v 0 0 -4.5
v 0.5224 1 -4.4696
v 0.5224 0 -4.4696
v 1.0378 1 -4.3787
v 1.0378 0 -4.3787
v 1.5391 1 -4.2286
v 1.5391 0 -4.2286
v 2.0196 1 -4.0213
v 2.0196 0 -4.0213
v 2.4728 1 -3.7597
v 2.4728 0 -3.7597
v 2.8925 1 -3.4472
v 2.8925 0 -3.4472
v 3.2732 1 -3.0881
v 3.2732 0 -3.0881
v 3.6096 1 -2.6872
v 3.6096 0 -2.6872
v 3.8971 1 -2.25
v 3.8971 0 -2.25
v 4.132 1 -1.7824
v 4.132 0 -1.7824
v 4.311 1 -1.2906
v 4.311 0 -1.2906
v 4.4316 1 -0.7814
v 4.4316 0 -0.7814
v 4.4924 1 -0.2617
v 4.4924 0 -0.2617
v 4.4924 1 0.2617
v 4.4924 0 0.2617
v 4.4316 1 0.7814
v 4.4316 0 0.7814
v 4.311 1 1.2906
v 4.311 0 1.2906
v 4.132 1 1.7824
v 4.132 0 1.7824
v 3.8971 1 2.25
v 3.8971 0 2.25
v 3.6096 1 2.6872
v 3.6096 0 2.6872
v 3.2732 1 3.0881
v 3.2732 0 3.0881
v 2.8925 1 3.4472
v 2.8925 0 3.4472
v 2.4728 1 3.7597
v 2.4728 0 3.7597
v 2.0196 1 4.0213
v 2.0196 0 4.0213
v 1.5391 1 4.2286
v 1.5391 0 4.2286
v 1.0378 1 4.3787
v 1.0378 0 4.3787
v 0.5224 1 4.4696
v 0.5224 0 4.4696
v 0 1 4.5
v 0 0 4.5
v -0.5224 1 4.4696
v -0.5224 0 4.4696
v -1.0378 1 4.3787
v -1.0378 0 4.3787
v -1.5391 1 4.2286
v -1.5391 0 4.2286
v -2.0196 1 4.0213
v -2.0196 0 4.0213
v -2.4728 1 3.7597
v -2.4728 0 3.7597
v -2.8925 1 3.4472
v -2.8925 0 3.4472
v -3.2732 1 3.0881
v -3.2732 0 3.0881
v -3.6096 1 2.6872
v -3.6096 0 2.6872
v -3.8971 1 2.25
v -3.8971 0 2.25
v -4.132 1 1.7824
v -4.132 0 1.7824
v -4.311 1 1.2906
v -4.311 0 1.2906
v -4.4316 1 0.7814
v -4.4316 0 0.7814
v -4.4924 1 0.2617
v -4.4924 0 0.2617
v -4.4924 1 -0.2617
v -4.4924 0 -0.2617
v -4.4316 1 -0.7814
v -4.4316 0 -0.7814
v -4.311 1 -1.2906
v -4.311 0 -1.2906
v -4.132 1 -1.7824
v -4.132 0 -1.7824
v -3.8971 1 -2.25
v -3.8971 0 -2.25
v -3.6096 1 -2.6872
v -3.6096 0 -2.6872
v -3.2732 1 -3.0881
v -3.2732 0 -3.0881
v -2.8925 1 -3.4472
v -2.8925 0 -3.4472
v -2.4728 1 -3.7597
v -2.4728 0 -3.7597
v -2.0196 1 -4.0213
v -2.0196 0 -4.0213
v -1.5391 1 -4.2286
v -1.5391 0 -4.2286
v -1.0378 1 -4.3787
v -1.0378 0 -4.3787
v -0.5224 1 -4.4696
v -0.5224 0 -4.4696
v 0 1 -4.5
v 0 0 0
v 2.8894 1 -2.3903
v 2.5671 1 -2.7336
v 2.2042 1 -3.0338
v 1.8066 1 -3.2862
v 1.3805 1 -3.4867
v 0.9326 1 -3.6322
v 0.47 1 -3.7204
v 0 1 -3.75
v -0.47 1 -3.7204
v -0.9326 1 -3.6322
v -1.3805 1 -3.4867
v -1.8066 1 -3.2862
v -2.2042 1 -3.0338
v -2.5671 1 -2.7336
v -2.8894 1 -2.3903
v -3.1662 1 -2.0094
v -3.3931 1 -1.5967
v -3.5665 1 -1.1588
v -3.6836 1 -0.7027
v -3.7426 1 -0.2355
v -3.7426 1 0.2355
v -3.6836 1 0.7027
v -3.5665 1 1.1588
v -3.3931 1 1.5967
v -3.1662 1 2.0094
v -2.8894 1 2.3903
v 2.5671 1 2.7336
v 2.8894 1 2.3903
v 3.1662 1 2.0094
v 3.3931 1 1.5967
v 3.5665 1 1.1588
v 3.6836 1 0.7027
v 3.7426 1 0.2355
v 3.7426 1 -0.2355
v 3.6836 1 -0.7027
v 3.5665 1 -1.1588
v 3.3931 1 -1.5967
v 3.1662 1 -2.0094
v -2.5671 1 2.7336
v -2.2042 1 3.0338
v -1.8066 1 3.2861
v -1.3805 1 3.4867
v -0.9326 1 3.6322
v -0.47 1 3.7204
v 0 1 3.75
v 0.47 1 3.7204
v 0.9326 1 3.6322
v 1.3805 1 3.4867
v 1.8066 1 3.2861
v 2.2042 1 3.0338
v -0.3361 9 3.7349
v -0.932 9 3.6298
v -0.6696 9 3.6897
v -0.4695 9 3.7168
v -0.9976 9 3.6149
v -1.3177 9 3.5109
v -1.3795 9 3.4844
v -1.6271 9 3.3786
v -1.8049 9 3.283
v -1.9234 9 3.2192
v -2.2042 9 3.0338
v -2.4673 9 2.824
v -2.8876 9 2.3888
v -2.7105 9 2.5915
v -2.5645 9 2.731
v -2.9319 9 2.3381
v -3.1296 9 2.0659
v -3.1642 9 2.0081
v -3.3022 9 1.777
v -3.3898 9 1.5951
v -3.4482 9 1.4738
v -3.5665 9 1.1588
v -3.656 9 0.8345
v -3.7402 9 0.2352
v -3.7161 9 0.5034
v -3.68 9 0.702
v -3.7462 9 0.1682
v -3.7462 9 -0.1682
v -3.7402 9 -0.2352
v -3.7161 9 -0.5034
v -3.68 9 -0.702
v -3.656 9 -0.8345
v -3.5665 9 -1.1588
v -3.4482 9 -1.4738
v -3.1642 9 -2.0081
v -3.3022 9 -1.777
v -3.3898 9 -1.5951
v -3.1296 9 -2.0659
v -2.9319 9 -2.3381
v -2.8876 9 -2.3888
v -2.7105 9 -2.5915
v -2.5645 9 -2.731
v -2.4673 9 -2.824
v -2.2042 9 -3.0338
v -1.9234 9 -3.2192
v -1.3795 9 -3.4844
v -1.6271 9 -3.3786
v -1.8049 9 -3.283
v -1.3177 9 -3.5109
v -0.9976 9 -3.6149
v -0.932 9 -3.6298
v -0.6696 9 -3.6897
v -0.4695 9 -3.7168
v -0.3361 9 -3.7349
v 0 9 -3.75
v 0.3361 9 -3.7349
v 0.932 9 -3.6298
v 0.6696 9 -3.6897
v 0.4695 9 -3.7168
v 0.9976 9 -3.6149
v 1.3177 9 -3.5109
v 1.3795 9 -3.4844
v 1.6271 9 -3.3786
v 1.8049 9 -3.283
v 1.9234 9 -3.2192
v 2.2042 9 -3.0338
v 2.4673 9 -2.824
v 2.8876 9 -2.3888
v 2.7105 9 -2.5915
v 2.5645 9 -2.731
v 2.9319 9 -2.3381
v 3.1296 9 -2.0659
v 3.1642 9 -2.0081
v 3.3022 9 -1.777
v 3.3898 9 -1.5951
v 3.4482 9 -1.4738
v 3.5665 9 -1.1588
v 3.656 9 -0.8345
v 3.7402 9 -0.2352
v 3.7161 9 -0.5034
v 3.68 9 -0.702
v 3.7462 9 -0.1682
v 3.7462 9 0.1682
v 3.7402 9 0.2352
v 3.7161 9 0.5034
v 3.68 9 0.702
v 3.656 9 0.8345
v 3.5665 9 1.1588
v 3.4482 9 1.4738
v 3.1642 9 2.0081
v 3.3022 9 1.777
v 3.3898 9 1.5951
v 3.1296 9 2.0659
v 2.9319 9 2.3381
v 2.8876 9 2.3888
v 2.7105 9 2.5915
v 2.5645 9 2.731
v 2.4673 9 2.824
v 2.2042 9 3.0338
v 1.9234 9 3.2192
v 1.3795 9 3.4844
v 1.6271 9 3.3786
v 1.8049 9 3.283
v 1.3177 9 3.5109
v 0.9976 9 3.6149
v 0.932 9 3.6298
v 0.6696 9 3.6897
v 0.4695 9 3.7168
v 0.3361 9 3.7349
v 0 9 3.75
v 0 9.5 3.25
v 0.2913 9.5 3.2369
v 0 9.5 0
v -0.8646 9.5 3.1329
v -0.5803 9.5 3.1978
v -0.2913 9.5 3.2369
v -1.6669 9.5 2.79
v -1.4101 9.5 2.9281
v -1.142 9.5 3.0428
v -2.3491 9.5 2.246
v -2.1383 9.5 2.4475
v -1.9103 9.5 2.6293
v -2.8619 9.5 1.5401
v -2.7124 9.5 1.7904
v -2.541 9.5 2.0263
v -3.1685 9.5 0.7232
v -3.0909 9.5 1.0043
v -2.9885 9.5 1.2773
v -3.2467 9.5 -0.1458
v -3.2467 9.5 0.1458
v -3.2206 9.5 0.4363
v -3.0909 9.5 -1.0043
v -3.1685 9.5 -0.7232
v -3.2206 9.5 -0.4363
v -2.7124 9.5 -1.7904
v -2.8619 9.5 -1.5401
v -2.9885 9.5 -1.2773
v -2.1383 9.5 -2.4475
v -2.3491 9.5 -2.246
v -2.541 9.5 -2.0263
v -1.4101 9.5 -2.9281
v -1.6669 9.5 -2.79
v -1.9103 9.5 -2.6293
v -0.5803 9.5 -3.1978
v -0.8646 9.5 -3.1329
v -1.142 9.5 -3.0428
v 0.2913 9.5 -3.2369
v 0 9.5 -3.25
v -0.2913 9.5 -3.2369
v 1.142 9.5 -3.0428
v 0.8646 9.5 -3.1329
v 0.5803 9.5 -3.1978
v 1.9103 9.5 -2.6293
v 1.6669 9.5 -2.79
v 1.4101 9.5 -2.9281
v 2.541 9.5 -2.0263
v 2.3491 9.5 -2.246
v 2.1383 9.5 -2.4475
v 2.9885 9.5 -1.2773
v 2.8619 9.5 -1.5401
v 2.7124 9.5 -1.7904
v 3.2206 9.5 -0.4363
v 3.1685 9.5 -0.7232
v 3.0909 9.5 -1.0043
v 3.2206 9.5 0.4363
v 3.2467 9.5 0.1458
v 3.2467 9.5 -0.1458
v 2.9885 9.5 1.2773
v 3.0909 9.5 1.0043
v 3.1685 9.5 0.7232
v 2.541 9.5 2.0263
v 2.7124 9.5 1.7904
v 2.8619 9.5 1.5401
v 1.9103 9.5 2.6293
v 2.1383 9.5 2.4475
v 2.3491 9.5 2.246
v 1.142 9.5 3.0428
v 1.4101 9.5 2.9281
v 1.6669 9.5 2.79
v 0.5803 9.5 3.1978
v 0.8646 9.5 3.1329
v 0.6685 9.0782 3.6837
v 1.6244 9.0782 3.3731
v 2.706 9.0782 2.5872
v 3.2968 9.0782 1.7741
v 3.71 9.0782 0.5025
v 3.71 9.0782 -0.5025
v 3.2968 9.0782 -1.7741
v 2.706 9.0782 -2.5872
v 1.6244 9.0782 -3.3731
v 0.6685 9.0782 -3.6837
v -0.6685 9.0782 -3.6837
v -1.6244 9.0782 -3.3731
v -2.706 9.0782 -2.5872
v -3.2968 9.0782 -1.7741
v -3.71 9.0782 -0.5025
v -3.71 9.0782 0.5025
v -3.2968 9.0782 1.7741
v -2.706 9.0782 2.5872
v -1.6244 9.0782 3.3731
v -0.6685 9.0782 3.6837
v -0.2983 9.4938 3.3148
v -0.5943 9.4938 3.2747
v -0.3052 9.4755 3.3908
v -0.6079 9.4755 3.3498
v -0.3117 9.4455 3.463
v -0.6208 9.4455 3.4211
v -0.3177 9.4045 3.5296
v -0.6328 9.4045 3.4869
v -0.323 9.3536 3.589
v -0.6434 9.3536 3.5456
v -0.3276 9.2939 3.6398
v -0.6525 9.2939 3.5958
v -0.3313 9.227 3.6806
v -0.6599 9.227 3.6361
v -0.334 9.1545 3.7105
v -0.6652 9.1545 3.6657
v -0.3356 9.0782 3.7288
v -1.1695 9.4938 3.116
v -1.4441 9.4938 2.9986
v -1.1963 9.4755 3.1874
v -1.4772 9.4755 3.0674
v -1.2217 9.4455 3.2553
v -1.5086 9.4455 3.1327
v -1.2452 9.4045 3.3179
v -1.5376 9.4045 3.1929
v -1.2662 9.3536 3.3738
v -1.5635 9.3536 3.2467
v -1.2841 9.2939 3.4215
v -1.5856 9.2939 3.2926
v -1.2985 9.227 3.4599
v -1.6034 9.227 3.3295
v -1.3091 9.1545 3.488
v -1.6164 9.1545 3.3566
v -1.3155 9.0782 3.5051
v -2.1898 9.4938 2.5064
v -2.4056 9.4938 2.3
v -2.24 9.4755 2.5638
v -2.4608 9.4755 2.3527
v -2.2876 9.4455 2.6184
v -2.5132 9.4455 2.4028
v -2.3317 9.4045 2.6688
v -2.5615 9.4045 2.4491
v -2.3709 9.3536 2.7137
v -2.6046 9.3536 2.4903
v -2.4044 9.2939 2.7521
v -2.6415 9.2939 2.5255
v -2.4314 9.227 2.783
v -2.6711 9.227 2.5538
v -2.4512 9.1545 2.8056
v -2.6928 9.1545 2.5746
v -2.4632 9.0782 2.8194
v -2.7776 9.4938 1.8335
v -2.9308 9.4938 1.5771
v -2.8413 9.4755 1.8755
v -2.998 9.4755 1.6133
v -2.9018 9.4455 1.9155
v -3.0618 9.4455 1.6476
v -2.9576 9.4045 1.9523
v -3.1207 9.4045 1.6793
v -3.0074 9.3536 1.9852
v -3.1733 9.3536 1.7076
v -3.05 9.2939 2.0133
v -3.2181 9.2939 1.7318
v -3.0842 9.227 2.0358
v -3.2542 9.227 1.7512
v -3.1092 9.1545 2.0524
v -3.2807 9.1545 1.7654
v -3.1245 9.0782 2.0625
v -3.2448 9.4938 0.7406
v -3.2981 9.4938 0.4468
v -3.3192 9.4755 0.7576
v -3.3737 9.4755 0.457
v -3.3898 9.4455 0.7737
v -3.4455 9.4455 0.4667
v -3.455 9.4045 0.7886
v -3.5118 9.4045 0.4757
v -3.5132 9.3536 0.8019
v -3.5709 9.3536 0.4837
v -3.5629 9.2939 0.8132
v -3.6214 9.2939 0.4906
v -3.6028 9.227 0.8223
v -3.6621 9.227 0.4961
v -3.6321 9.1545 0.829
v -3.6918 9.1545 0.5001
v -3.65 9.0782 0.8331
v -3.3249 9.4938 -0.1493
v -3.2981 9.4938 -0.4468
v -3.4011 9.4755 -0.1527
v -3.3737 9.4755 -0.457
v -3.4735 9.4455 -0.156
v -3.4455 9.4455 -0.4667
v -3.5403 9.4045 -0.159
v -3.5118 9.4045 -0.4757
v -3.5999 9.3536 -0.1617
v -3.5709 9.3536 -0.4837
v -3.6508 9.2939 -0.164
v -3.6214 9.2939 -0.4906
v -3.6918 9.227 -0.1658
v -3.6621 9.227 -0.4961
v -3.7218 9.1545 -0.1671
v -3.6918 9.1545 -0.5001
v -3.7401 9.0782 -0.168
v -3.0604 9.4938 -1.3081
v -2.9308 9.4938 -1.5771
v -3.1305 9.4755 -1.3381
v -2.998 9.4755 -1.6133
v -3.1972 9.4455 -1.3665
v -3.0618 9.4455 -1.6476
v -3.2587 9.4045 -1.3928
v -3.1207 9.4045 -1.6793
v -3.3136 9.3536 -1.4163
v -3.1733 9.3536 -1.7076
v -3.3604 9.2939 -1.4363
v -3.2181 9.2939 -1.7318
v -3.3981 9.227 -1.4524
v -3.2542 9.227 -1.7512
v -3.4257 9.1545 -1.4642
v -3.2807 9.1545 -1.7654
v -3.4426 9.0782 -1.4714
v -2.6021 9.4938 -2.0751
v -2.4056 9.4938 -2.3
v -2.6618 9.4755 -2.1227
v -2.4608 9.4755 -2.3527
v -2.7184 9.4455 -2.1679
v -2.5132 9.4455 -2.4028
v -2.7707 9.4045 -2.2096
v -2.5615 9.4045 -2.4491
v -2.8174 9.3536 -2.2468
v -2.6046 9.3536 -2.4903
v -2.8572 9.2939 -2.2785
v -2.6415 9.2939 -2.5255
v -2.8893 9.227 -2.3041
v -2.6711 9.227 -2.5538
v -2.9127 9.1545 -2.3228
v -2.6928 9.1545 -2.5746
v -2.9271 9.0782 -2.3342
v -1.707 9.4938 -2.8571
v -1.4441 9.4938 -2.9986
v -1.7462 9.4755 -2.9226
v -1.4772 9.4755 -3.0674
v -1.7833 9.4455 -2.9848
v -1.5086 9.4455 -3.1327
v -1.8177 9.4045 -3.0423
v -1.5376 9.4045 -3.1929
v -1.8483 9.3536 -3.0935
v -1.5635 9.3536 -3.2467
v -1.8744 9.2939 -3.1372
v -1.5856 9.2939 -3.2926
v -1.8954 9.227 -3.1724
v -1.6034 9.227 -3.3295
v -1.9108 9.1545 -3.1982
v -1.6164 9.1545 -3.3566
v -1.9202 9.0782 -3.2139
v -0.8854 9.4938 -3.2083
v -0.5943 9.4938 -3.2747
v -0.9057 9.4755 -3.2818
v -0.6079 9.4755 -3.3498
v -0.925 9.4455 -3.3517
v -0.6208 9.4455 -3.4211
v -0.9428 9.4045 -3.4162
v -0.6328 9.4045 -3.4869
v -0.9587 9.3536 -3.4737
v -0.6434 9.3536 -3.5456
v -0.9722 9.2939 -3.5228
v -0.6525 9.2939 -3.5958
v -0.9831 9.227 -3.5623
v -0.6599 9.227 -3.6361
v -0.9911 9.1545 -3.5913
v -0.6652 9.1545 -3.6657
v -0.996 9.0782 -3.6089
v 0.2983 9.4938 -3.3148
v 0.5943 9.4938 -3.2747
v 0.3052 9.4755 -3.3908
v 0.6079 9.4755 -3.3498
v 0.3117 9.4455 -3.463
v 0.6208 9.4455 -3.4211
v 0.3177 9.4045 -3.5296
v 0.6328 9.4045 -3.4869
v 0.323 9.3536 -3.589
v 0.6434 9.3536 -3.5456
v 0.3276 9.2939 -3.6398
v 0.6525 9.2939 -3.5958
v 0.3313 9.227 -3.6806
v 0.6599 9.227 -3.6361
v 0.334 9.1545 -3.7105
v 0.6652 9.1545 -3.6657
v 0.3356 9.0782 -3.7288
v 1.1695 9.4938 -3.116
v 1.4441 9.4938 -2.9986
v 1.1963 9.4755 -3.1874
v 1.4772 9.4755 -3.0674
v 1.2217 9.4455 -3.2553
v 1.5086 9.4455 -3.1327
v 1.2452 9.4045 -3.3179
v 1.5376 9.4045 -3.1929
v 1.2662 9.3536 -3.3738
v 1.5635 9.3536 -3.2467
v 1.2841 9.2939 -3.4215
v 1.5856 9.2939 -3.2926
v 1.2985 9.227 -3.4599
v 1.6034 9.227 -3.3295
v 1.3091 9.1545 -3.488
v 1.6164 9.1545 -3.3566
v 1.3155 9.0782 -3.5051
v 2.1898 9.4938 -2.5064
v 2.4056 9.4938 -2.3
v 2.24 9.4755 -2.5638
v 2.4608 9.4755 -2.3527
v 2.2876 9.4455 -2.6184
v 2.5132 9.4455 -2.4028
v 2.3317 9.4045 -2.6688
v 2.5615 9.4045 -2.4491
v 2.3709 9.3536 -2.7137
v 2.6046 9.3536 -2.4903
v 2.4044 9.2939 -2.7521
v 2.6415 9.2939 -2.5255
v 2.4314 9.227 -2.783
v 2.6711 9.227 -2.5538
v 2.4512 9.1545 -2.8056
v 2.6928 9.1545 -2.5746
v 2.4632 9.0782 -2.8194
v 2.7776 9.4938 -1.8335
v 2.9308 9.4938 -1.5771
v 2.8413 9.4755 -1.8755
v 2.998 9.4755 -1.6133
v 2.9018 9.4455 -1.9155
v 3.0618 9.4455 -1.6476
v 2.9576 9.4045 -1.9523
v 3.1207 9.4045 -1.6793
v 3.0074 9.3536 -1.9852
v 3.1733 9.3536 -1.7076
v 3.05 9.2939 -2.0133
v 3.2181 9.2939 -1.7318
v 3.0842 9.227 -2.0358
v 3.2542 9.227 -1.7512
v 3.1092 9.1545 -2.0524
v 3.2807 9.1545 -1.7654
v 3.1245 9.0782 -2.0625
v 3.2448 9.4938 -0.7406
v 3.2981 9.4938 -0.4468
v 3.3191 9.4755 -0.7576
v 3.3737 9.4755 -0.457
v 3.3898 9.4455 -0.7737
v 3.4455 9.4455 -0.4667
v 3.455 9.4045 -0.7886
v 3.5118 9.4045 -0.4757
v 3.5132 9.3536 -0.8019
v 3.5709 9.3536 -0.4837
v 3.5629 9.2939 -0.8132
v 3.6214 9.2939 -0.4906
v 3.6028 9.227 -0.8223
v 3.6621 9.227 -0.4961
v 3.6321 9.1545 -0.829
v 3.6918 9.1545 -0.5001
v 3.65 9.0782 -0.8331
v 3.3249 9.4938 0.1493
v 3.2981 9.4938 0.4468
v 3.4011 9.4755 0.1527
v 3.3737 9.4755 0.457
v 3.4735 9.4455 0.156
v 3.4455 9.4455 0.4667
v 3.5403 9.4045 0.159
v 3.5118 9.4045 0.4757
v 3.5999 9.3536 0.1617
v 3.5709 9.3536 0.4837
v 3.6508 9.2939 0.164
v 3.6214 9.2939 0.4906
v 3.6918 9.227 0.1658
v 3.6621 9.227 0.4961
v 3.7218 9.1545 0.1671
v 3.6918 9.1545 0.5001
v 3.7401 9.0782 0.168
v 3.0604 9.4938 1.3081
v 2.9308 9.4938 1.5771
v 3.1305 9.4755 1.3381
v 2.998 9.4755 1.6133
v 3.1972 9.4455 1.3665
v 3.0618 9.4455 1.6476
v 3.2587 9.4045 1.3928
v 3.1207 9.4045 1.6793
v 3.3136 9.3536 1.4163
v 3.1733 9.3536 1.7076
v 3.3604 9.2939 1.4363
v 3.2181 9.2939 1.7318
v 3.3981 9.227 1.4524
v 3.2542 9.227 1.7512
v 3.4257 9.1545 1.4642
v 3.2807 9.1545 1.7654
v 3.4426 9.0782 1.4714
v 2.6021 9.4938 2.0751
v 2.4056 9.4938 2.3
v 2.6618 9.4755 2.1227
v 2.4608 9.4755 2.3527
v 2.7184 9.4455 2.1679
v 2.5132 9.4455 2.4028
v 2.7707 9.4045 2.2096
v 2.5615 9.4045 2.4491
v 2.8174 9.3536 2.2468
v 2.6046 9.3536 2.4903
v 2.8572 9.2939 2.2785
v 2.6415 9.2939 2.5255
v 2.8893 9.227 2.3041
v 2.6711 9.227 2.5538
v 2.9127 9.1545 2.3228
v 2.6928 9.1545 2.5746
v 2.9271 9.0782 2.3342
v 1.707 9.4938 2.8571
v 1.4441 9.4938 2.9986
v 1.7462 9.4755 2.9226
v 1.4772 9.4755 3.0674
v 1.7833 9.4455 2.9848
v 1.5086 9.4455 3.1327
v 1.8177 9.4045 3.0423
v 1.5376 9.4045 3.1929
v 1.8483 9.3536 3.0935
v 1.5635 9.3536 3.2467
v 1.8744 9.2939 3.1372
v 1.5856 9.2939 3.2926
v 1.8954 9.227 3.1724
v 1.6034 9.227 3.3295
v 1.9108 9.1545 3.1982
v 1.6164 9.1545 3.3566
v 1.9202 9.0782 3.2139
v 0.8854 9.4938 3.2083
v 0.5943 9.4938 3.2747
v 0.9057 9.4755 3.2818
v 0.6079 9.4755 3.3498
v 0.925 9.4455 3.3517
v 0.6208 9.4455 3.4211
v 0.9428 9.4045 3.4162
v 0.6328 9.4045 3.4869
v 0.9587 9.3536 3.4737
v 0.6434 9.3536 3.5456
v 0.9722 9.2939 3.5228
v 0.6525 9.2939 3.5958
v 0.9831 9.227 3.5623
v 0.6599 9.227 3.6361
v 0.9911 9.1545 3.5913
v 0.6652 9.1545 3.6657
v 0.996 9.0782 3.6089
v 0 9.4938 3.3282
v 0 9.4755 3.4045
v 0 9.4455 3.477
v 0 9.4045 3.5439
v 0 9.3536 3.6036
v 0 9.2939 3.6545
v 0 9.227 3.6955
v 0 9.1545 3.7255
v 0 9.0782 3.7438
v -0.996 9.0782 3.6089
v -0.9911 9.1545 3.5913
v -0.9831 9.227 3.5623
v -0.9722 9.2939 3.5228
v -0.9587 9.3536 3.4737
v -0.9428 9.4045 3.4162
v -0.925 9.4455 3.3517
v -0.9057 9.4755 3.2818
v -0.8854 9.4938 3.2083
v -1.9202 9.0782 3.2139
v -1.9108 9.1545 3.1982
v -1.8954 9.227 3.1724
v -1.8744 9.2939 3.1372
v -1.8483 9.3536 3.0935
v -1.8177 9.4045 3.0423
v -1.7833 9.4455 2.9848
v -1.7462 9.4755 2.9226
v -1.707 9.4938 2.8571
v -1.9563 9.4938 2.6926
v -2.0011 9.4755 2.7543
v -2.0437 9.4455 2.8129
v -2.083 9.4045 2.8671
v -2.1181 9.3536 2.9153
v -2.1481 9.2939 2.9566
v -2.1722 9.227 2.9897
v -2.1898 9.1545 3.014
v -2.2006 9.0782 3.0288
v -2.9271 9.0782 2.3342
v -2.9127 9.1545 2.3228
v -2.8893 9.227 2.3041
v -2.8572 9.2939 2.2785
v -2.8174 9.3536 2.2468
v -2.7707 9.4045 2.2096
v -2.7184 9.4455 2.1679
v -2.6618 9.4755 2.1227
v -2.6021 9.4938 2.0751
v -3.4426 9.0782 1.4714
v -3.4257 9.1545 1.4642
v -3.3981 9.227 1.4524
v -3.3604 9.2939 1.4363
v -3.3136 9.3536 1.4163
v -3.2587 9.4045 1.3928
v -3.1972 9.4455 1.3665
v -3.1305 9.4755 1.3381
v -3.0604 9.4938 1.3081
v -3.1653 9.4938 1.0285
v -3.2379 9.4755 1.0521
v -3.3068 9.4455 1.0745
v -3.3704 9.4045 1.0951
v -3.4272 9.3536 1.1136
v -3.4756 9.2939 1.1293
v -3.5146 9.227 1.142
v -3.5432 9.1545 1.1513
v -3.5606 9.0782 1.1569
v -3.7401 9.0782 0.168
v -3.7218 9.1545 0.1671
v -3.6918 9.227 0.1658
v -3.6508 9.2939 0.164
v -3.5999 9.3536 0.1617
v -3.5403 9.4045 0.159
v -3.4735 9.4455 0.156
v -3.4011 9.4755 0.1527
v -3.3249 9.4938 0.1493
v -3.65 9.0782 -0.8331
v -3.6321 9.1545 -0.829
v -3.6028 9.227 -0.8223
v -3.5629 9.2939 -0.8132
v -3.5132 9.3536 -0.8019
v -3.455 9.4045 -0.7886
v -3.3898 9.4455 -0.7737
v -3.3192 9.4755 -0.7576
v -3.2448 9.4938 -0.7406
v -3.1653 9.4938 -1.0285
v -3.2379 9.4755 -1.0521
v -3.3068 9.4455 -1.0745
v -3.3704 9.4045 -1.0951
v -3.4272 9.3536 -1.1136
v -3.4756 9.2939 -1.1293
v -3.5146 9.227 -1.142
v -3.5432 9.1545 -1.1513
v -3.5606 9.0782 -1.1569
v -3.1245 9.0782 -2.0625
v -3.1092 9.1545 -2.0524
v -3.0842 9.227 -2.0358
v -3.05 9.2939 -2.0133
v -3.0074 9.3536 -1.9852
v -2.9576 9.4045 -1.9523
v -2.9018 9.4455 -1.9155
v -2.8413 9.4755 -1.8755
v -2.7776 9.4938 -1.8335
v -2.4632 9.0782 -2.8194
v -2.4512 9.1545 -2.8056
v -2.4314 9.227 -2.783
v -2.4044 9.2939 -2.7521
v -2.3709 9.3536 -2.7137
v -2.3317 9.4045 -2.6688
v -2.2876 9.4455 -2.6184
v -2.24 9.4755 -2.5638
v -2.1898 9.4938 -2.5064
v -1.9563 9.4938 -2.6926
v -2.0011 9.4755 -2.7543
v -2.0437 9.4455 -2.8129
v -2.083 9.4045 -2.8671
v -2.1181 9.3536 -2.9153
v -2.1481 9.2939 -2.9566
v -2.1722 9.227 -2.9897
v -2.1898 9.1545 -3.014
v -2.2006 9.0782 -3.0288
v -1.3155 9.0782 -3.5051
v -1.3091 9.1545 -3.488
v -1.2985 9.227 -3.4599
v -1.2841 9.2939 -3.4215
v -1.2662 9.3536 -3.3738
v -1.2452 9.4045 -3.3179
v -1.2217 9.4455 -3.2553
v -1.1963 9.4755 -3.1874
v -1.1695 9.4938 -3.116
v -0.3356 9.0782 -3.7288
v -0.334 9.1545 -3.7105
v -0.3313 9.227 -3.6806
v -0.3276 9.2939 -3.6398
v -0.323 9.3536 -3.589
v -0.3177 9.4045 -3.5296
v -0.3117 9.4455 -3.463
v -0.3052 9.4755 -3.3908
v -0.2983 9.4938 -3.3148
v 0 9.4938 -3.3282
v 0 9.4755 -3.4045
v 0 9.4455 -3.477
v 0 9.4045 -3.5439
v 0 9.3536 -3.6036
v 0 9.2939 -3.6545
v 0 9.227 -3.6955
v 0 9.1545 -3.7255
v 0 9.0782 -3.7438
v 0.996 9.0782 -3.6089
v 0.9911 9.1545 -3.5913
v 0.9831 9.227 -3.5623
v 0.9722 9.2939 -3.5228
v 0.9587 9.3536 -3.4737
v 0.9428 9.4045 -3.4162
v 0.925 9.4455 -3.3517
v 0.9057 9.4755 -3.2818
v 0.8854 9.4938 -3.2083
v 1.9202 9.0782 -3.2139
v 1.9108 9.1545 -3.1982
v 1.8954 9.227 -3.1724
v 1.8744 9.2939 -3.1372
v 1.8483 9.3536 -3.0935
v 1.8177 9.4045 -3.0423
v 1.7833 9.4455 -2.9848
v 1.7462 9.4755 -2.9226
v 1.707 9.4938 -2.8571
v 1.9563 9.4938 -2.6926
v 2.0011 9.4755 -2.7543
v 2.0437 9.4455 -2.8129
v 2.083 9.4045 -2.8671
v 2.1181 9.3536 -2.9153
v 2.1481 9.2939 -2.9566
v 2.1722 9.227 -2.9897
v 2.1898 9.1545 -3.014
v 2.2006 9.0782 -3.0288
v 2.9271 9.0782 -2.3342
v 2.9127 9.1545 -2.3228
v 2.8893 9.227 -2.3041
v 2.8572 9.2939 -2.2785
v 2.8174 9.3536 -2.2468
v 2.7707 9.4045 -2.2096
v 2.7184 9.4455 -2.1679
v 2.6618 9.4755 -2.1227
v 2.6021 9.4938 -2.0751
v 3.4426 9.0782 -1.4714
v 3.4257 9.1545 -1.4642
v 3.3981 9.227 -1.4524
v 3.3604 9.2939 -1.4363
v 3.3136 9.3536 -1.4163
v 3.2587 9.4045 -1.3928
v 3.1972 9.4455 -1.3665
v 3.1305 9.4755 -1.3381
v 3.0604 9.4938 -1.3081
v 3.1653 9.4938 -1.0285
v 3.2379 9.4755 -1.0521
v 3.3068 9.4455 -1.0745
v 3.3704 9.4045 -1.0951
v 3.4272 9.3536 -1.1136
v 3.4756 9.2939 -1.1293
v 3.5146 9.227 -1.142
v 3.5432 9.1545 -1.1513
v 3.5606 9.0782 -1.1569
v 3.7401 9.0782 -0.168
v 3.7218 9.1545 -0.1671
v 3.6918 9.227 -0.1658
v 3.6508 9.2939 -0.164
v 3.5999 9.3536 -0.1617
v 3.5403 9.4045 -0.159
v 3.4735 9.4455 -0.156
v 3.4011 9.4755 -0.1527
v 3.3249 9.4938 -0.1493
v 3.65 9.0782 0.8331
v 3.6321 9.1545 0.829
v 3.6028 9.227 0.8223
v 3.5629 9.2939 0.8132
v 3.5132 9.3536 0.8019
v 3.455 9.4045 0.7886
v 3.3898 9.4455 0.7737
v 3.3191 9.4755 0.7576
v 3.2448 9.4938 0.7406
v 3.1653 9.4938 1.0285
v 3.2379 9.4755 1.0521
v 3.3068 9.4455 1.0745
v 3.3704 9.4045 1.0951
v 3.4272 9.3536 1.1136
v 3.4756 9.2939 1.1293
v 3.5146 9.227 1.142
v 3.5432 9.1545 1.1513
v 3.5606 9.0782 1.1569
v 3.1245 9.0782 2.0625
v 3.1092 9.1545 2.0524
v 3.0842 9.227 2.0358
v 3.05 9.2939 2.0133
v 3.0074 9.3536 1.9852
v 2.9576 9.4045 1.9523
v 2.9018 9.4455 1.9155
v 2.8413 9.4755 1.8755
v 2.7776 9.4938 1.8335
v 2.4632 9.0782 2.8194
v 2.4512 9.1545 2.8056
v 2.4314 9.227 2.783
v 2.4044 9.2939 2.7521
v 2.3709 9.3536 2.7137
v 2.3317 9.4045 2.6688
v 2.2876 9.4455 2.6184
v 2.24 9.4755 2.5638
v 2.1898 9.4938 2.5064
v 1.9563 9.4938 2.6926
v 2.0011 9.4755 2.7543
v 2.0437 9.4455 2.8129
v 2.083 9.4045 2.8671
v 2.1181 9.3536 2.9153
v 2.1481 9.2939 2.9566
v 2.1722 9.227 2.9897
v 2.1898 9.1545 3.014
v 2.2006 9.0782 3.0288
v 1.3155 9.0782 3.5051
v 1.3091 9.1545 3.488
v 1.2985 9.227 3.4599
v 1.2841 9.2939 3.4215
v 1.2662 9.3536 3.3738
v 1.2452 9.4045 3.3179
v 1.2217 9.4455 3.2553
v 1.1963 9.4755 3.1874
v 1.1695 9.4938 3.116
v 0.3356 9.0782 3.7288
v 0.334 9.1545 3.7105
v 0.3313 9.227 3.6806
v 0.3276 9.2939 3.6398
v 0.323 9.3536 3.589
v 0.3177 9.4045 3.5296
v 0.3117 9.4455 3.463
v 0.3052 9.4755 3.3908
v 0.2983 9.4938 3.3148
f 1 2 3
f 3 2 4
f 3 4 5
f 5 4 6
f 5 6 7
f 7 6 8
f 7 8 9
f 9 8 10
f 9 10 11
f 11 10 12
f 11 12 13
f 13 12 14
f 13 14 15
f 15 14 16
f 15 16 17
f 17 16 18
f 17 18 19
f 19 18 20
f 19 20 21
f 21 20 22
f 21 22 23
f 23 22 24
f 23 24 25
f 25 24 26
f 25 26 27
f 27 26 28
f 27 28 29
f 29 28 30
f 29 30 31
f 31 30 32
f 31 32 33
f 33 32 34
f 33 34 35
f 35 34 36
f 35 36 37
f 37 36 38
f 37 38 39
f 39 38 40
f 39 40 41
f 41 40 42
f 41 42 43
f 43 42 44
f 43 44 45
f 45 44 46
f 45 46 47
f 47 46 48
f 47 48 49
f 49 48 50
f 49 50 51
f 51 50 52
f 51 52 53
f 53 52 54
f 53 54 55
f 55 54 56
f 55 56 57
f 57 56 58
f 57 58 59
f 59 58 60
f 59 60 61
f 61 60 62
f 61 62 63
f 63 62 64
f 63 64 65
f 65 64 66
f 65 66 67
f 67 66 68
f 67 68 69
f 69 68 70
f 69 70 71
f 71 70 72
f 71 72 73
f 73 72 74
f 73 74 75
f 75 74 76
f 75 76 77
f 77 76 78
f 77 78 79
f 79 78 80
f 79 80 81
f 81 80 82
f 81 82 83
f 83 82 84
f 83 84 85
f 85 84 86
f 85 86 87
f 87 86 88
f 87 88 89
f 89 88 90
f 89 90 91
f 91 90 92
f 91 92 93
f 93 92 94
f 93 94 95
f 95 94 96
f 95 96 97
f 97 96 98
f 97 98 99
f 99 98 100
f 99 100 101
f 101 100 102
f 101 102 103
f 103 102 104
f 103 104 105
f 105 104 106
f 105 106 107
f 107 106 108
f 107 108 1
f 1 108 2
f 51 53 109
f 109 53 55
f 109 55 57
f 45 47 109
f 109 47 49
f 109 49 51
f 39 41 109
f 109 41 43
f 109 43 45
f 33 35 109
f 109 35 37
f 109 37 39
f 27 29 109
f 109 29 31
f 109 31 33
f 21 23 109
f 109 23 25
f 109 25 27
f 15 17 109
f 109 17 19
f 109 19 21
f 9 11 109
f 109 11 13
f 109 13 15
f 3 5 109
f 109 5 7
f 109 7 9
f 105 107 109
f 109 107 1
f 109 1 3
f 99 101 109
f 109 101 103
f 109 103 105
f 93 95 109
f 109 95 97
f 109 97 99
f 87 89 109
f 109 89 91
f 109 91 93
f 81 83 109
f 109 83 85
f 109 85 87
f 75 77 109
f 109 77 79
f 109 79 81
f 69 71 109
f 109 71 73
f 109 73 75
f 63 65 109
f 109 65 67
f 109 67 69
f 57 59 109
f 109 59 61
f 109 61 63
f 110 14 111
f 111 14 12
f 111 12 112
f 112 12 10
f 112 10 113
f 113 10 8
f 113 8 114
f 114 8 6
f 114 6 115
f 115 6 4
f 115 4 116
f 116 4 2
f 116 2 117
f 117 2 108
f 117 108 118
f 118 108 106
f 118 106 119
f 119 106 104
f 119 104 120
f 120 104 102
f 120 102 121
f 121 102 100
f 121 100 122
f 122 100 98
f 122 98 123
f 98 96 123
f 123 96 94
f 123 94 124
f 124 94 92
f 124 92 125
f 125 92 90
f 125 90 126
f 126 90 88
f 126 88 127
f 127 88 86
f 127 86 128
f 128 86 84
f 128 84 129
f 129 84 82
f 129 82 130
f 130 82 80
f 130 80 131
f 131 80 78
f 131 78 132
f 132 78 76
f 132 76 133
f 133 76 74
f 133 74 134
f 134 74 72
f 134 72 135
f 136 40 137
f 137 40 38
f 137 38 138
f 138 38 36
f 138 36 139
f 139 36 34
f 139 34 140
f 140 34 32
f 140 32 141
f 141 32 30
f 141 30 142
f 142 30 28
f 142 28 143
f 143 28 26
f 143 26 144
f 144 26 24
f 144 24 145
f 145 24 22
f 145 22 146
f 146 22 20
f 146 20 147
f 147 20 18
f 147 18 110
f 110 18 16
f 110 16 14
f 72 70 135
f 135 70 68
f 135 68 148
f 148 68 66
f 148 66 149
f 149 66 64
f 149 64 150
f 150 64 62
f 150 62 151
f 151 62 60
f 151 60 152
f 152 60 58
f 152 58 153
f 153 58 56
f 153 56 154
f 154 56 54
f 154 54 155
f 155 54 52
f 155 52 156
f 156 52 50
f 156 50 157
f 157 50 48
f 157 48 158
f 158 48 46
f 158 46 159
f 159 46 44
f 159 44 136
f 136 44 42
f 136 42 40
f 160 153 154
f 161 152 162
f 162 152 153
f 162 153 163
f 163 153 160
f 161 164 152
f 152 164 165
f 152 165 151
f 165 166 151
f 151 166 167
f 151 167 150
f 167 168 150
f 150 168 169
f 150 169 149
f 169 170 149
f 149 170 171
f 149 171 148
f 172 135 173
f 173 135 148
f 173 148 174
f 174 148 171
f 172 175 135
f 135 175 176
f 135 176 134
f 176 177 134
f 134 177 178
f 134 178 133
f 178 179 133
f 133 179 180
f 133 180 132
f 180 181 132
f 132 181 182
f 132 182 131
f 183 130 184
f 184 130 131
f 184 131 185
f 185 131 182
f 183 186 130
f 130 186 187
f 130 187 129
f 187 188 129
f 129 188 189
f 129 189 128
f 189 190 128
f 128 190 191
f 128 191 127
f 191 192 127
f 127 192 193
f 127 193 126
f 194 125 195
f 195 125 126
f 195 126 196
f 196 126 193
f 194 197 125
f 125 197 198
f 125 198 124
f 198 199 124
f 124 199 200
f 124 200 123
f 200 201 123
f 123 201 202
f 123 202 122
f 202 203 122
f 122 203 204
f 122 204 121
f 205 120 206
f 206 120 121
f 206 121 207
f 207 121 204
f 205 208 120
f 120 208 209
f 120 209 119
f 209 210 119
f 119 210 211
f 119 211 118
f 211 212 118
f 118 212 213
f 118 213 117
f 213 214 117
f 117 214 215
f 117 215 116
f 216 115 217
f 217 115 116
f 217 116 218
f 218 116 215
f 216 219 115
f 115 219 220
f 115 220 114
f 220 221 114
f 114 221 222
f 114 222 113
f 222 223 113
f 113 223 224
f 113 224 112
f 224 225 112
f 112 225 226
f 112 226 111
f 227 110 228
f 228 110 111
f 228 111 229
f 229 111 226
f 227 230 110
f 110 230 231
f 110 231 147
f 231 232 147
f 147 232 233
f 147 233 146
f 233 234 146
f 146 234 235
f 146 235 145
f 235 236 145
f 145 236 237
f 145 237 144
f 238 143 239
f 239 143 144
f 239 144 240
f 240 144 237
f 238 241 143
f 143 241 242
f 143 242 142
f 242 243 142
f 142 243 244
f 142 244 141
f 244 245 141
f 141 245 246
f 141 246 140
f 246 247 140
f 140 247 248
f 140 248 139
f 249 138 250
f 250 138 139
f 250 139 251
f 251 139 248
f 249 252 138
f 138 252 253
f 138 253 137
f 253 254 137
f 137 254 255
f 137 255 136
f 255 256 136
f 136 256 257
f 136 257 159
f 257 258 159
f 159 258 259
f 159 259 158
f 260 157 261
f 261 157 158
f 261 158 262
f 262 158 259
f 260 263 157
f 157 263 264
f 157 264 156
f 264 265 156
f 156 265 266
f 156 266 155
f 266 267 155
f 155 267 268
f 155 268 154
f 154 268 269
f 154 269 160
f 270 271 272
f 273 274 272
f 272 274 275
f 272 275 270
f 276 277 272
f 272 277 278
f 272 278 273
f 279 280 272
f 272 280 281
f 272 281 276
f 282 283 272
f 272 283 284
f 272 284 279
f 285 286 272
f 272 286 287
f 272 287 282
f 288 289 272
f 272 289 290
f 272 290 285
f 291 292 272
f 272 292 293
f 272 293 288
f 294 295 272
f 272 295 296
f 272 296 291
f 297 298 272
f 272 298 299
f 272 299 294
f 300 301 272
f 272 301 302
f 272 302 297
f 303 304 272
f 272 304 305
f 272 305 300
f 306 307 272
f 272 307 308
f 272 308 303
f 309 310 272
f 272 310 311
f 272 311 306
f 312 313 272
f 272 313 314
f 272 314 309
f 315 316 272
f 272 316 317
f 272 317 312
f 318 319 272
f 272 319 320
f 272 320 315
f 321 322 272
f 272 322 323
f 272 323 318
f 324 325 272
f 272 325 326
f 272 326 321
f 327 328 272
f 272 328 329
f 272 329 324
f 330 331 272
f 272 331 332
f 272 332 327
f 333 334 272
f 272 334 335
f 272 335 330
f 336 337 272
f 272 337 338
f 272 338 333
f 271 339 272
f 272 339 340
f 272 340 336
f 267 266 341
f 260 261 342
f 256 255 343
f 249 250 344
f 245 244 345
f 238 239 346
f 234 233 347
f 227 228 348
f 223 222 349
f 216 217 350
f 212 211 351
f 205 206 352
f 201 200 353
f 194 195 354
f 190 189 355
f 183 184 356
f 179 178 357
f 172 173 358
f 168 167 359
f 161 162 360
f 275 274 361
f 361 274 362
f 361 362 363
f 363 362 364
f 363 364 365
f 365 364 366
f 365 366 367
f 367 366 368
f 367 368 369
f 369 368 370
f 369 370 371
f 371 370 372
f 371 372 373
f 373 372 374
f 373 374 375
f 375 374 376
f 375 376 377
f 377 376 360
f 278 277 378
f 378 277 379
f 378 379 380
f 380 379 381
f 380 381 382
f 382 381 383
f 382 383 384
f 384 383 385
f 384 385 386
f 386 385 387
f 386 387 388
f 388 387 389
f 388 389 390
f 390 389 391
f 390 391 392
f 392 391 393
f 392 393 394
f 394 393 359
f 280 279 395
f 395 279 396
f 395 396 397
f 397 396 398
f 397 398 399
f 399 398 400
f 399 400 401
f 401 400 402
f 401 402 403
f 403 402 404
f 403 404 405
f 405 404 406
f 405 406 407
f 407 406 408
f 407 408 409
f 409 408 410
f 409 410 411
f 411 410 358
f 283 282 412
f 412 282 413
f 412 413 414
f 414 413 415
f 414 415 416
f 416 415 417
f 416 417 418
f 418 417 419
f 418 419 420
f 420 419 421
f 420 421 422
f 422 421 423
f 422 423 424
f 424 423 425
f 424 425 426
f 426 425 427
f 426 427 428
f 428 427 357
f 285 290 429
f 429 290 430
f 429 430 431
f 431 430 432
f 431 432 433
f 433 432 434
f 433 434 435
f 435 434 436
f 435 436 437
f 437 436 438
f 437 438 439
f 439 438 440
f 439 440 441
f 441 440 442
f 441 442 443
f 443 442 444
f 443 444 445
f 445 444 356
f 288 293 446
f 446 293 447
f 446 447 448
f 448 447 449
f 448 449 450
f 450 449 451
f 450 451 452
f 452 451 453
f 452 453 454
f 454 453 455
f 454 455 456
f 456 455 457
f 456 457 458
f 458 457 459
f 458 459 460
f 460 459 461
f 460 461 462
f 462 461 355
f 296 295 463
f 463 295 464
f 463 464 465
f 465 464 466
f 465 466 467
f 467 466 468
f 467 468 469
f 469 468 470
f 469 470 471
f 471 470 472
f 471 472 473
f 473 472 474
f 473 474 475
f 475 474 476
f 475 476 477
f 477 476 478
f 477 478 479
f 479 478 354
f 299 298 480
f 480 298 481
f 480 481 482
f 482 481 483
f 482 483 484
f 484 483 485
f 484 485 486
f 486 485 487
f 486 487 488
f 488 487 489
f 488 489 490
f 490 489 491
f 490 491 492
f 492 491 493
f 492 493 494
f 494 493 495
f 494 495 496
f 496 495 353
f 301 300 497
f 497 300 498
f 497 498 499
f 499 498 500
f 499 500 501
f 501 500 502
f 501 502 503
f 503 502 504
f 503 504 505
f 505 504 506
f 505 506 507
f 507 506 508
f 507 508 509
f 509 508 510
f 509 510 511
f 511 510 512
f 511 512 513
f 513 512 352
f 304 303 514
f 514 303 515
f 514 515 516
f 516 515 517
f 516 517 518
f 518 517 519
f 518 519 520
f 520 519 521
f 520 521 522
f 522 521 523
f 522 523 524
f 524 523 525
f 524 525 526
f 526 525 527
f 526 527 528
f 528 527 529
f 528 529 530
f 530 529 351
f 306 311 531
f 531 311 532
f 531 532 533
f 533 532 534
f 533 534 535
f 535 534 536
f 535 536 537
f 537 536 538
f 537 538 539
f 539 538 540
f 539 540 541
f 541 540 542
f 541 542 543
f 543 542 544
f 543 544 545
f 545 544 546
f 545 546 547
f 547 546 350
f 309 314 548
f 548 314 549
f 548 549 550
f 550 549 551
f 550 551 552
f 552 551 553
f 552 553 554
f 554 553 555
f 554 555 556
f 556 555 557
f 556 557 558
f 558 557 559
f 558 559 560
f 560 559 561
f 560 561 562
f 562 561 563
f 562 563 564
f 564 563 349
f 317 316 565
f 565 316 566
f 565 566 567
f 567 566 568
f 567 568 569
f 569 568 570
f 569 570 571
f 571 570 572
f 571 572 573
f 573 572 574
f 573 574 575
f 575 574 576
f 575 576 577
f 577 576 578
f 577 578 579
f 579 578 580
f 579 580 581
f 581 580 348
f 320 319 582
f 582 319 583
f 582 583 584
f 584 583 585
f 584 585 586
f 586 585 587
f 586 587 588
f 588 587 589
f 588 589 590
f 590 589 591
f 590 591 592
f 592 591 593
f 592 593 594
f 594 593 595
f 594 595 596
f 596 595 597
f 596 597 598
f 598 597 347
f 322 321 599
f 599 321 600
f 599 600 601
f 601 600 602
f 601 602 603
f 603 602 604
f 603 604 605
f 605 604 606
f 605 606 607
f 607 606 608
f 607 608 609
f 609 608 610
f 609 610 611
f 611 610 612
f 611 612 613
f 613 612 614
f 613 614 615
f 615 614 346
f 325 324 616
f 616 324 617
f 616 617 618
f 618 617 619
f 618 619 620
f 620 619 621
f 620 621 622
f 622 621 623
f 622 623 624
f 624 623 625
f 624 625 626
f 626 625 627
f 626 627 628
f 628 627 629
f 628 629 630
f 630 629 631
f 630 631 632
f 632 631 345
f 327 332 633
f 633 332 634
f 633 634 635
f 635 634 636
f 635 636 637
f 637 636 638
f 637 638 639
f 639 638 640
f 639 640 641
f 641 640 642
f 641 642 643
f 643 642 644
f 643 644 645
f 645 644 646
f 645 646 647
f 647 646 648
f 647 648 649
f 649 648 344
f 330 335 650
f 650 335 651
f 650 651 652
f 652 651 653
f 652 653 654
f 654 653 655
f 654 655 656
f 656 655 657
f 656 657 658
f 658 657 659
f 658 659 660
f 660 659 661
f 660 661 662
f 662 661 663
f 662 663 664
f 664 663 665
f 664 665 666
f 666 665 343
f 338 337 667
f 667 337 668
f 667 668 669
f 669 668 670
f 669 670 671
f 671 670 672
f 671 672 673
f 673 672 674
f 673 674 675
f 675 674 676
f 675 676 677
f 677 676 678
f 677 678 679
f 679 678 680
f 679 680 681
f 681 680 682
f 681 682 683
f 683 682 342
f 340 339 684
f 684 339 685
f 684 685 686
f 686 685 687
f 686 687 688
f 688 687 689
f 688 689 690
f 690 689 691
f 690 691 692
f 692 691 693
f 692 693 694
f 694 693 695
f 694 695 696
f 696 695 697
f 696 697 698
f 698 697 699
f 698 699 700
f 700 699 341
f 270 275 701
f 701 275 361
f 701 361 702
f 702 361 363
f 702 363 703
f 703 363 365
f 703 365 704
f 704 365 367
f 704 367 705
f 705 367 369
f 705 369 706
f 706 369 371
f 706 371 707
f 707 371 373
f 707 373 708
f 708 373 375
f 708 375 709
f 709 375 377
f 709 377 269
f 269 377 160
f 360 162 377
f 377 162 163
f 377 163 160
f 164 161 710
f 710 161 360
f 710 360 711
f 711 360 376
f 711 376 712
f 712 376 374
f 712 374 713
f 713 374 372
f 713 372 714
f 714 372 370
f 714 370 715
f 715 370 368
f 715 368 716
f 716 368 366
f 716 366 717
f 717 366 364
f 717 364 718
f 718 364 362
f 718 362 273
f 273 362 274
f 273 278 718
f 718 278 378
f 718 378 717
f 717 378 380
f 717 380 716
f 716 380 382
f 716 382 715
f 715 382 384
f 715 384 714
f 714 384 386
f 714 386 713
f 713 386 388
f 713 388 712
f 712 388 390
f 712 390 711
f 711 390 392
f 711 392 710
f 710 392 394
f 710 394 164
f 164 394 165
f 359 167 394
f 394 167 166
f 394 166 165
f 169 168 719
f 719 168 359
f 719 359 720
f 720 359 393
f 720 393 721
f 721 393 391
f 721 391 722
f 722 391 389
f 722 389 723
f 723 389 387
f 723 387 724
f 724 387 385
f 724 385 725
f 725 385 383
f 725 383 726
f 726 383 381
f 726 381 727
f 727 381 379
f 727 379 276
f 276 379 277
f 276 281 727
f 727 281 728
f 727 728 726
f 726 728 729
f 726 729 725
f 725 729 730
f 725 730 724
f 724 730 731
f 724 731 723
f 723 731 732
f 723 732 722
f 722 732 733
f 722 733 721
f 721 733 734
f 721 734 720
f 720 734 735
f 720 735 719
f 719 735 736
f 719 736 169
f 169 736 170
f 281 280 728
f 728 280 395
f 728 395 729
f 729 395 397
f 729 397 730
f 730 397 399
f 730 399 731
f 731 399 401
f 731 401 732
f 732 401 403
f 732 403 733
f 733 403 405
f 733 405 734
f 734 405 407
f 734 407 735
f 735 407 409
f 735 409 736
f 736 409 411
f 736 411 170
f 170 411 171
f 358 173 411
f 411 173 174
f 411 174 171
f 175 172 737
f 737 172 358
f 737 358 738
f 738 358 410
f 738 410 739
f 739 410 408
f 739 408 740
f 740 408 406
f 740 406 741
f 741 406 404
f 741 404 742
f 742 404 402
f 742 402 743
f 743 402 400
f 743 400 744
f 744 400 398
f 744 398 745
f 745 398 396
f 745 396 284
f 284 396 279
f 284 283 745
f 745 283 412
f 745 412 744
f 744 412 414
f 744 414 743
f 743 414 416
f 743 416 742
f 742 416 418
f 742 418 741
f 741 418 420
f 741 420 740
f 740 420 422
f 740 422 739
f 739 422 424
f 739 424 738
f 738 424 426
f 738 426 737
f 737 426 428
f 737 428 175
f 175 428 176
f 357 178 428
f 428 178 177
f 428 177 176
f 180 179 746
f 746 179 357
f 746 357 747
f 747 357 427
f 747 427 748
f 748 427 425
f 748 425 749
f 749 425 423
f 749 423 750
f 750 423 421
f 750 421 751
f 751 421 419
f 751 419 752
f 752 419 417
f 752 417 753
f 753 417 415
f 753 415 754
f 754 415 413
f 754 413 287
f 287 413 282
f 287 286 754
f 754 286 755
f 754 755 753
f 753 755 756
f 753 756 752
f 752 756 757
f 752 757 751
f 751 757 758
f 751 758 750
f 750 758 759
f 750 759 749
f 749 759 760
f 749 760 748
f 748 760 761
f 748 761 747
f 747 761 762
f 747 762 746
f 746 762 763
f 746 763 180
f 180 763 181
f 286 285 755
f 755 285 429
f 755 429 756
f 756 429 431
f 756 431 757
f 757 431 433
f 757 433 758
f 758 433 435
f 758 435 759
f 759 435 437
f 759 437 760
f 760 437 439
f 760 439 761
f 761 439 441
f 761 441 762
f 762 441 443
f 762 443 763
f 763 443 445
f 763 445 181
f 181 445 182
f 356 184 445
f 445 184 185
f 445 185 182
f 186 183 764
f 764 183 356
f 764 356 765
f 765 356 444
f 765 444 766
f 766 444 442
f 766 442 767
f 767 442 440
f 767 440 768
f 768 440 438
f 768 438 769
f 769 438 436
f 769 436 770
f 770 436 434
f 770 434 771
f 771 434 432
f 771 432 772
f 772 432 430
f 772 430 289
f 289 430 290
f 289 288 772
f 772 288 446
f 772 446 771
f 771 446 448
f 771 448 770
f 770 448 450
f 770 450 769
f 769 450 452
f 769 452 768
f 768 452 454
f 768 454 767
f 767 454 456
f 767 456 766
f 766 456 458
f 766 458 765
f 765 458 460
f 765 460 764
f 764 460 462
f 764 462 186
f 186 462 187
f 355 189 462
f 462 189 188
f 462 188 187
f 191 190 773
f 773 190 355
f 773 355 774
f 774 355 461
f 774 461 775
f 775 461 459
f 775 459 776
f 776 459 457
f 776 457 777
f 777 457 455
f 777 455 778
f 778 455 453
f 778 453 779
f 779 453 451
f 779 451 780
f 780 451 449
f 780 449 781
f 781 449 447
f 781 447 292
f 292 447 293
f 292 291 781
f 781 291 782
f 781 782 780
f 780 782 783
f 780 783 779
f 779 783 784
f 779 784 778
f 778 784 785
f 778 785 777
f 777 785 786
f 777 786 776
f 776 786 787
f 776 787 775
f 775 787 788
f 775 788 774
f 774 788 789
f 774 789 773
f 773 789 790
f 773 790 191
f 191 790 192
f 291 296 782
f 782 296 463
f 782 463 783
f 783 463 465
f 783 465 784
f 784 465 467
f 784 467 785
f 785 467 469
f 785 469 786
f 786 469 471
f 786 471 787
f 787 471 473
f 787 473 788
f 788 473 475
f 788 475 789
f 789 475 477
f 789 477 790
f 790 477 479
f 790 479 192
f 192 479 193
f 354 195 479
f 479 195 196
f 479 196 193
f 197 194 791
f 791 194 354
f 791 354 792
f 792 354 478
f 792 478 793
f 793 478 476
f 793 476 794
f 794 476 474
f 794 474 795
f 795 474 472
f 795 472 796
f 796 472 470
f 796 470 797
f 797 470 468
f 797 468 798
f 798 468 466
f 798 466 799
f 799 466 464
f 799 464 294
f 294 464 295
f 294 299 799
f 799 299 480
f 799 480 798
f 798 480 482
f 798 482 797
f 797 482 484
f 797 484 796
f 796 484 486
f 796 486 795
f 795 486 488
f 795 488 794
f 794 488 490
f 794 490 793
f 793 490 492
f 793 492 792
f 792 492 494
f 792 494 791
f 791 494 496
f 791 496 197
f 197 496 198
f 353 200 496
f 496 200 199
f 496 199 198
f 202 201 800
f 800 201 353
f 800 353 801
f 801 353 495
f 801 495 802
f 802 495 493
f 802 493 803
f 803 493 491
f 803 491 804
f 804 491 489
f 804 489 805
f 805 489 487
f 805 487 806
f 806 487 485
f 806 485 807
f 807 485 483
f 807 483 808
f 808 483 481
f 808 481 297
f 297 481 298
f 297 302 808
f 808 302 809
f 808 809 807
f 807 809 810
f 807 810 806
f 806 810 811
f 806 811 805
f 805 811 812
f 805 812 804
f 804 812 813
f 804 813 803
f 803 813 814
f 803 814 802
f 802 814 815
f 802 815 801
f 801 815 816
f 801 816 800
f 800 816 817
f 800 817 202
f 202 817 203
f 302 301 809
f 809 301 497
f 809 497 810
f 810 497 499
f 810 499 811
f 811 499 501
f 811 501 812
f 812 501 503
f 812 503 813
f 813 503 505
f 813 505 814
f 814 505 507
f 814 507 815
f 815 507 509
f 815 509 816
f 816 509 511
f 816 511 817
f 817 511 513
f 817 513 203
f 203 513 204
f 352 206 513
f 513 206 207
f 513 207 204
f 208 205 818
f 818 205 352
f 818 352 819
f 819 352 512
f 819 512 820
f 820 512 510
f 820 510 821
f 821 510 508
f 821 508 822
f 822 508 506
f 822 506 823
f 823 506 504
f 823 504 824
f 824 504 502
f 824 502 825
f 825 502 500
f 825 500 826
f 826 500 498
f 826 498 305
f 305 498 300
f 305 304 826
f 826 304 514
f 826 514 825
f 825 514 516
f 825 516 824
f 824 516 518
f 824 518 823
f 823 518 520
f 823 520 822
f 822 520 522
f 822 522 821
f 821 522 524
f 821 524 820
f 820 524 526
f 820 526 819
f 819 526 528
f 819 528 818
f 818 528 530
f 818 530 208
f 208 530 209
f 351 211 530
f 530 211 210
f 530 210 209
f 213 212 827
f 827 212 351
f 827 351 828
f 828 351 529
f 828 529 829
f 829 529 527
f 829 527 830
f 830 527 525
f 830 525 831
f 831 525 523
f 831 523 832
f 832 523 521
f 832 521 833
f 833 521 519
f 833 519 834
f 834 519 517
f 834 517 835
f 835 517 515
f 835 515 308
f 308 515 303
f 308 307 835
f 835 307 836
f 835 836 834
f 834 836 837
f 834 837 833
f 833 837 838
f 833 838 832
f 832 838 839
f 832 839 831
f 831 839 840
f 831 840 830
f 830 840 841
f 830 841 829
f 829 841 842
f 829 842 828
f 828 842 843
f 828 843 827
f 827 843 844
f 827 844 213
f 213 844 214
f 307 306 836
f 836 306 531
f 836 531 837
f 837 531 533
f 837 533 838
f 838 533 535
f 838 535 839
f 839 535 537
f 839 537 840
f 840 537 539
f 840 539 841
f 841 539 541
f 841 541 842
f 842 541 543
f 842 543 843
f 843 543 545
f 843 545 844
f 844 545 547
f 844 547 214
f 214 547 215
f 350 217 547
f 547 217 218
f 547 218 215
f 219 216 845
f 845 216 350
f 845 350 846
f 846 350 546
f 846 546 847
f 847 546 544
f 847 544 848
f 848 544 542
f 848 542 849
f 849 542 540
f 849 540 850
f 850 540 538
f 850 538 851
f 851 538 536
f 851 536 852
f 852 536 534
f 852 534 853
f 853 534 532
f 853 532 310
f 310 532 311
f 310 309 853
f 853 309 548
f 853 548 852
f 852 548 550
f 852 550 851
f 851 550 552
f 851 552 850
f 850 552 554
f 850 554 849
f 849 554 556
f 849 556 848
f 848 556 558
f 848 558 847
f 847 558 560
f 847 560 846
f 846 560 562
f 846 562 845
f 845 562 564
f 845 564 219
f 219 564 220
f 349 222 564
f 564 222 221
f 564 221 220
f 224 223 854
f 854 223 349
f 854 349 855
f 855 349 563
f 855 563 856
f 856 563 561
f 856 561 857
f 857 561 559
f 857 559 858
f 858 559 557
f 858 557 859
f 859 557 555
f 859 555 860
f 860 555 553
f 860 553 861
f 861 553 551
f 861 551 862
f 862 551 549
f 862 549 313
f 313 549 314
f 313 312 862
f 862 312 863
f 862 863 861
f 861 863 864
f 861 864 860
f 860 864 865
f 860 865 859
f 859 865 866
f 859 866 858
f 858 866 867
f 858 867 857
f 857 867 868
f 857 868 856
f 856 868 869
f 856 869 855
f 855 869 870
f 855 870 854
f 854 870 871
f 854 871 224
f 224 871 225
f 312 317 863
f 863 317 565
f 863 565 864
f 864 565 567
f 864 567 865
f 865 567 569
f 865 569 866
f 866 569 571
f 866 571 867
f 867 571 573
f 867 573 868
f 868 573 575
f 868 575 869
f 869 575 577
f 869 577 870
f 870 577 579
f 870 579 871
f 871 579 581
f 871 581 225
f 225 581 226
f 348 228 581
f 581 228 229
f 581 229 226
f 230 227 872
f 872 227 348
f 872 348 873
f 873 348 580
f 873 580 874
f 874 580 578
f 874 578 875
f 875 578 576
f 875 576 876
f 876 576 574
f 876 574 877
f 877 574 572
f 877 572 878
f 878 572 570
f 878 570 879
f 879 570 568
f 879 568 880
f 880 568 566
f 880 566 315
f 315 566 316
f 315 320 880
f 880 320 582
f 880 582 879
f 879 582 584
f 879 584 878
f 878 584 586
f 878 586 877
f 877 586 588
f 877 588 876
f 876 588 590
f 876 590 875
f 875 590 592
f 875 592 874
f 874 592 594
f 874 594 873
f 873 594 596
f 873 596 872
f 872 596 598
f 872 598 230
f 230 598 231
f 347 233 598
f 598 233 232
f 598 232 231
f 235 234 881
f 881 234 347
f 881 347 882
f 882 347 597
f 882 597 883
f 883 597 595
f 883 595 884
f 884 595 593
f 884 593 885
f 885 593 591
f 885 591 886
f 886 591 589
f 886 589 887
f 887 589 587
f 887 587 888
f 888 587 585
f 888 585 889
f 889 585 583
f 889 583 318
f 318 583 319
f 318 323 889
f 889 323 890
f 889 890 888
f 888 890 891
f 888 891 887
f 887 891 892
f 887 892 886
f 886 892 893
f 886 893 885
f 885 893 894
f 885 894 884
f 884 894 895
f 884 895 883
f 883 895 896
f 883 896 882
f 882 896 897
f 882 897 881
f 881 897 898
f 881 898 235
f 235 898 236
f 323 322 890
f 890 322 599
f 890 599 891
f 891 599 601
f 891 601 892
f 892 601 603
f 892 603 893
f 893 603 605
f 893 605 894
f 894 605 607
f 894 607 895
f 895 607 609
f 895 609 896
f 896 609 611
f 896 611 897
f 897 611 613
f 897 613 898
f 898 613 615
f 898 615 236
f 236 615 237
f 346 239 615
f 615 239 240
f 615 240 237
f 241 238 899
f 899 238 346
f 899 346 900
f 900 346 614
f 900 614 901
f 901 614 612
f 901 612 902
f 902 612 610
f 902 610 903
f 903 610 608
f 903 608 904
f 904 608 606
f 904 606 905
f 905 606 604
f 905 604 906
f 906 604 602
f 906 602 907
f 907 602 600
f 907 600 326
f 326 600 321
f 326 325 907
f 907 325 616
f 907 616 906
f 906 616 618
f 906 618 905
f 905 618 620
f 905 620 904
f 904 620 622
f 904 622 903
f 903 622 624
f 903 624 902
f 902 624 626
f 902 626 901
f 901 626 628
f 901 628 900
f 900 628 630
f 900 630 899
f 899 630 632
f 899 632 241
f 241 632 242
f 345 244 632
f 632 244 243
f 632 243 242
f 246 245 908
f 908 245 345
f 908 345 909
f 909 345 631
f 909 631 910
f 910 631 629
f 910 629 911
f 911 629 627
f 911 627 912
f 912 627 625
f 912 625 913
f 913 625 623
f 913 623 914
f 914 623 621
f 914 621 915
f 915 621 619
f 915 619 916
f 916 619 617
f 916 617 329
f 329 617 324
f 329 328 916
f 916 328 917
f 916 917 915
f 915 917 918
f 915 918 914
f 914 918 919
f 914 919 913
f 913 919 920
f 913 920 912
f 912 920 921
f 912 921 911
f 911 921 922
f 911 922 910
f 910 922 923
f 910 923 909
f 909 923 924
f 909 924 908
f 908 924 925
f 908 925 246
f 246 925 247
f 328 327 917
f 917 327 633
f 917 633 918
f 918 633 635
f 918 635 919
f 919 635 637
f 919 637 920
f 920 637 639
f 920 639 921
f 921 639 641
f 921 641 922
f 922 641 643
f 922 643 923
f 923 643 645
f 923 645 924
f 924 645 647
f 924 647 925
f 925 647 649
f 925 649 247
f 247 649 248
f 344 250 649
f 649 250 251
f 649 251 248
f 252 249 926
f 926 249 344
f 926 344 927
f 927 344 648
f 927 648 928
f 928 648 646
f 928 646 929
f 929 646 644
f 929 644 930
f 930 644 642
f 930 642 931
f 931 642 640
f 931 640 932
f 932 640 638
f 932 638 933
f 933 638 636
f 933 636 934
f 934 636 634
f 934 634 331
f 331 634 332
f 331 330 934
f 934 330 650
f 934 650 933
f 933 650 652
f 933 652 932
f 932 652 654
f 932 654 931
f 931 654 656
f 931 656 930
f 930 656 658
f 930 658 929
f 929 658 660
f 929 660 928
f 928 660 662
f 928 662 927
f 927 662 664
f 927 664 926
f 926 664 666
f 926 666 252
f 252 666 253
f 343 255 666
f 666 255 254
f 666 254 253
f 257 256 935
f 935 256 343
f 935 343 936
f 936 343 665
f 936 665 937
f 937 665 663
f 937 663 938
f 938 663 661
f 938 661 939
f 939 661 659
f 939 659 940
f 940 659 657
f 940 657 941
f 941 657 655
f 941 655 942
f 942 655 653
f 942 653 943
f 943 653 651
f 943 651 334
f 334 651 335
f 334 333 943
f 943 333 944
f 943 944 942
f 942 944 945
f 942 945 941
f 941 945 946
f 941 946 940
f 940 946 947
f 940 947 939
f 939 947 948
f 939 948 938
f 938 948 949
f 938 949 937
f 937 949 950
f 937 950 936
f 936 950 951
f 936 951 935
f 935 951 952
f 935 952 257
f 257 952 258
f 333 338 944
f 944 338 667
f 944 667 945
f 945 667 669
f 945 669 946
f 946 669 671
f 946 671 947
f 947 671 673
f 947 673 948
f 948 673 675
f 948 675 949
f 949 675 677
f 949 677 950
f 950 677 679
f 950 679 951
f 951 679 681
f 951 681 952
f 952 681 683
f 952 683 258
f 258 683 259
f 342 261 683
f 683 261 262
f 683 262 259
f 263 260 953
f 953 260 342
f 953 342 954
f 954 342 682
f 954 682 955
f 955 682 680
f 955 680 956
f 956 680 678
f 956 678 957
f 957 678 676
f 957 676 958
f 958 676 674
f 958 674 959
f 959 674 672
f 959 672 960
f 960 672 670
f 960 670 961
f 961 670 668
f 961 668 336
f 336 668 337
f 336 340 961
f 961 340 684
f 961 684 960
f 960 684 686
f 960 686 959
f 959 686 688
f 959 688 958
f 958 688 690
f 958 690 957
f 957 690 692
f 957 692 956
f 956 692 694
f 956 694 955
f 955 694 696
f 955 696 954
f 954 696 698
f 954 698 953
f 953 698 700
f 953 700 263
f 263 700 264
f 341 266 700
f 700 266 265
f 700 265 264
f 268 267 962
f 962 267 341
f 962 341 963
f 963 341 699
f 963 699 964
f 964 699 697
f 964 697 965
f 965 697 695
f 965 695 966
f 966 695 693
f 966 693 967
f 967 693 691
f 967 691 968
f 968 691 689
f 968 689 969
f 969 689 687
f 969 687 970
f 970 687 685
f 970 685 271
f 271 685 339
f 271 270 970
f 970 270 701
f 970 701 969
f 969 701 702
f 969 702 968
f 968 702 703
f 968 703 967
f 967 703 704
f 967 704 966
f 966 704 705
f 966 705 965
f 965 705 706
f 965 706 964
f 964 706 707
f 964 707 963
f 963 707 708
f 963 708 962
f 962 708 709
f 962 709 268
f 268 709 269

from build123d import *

# Parameters (mm, degrees)
CROQUIS1_R              = 4.5
SALIENTE_EXTRUIR1_DEPTH = 9.5
CORTAR_EXTRUIR1_START   = -8.5
CROQUIS2_R              = 4.5
CROQUIS2_R_2            = 3.75
CORTAR_EXTRUIR1_DEPTH   = 8.5
REDONDEO1_R             = 0.5


with BuildPart() as part:
    # Croquis1 → Saliente-Extruir1 (new body)
    with BuildSketch(Plane(origin=(0, 0, 0), x_dir=(1, 0, 0), z_dir=(0, 1, 0))):
        with Locations(Location((0, 0, 0), (0, 0, 270))):
            Circle(CROQUIS1_R)
    extrude(amount=SALIENTE_EXTRUIR1_DEPTH)

    # Croquis2 → Cortar-Extruir1 (cut)
    with BuildSketch(Plane(origin=(0, 9.5, 0), x_dir=(1, 0, 0), z_dir=(0, 1, 0)).offset(CORTAR_EXTRUIR1_START)):
        with Locations(Location((0, 0, 0), (0, 0, 270))):
            Circle(CROQUIS2_R)
        with Locations(Location((0, 0, 0), (0, 0, 270))):
            Circle(CROQUIS2_R_2, mode=Mode.SUBTRACT)
    extrude(amount=CORTAR_EXTRUIR1_DEPTH, mode=Mode.SUBTRACT)

    # Redondeo1
    redondeo1_edges = [part.edges().sort_by_distance(p)[0] for p in [
        (0, 9.5, -3.75),
    ]]
    fillet(redondeo1_edges, radius=REDONDEO1_R)


solid = part.part
